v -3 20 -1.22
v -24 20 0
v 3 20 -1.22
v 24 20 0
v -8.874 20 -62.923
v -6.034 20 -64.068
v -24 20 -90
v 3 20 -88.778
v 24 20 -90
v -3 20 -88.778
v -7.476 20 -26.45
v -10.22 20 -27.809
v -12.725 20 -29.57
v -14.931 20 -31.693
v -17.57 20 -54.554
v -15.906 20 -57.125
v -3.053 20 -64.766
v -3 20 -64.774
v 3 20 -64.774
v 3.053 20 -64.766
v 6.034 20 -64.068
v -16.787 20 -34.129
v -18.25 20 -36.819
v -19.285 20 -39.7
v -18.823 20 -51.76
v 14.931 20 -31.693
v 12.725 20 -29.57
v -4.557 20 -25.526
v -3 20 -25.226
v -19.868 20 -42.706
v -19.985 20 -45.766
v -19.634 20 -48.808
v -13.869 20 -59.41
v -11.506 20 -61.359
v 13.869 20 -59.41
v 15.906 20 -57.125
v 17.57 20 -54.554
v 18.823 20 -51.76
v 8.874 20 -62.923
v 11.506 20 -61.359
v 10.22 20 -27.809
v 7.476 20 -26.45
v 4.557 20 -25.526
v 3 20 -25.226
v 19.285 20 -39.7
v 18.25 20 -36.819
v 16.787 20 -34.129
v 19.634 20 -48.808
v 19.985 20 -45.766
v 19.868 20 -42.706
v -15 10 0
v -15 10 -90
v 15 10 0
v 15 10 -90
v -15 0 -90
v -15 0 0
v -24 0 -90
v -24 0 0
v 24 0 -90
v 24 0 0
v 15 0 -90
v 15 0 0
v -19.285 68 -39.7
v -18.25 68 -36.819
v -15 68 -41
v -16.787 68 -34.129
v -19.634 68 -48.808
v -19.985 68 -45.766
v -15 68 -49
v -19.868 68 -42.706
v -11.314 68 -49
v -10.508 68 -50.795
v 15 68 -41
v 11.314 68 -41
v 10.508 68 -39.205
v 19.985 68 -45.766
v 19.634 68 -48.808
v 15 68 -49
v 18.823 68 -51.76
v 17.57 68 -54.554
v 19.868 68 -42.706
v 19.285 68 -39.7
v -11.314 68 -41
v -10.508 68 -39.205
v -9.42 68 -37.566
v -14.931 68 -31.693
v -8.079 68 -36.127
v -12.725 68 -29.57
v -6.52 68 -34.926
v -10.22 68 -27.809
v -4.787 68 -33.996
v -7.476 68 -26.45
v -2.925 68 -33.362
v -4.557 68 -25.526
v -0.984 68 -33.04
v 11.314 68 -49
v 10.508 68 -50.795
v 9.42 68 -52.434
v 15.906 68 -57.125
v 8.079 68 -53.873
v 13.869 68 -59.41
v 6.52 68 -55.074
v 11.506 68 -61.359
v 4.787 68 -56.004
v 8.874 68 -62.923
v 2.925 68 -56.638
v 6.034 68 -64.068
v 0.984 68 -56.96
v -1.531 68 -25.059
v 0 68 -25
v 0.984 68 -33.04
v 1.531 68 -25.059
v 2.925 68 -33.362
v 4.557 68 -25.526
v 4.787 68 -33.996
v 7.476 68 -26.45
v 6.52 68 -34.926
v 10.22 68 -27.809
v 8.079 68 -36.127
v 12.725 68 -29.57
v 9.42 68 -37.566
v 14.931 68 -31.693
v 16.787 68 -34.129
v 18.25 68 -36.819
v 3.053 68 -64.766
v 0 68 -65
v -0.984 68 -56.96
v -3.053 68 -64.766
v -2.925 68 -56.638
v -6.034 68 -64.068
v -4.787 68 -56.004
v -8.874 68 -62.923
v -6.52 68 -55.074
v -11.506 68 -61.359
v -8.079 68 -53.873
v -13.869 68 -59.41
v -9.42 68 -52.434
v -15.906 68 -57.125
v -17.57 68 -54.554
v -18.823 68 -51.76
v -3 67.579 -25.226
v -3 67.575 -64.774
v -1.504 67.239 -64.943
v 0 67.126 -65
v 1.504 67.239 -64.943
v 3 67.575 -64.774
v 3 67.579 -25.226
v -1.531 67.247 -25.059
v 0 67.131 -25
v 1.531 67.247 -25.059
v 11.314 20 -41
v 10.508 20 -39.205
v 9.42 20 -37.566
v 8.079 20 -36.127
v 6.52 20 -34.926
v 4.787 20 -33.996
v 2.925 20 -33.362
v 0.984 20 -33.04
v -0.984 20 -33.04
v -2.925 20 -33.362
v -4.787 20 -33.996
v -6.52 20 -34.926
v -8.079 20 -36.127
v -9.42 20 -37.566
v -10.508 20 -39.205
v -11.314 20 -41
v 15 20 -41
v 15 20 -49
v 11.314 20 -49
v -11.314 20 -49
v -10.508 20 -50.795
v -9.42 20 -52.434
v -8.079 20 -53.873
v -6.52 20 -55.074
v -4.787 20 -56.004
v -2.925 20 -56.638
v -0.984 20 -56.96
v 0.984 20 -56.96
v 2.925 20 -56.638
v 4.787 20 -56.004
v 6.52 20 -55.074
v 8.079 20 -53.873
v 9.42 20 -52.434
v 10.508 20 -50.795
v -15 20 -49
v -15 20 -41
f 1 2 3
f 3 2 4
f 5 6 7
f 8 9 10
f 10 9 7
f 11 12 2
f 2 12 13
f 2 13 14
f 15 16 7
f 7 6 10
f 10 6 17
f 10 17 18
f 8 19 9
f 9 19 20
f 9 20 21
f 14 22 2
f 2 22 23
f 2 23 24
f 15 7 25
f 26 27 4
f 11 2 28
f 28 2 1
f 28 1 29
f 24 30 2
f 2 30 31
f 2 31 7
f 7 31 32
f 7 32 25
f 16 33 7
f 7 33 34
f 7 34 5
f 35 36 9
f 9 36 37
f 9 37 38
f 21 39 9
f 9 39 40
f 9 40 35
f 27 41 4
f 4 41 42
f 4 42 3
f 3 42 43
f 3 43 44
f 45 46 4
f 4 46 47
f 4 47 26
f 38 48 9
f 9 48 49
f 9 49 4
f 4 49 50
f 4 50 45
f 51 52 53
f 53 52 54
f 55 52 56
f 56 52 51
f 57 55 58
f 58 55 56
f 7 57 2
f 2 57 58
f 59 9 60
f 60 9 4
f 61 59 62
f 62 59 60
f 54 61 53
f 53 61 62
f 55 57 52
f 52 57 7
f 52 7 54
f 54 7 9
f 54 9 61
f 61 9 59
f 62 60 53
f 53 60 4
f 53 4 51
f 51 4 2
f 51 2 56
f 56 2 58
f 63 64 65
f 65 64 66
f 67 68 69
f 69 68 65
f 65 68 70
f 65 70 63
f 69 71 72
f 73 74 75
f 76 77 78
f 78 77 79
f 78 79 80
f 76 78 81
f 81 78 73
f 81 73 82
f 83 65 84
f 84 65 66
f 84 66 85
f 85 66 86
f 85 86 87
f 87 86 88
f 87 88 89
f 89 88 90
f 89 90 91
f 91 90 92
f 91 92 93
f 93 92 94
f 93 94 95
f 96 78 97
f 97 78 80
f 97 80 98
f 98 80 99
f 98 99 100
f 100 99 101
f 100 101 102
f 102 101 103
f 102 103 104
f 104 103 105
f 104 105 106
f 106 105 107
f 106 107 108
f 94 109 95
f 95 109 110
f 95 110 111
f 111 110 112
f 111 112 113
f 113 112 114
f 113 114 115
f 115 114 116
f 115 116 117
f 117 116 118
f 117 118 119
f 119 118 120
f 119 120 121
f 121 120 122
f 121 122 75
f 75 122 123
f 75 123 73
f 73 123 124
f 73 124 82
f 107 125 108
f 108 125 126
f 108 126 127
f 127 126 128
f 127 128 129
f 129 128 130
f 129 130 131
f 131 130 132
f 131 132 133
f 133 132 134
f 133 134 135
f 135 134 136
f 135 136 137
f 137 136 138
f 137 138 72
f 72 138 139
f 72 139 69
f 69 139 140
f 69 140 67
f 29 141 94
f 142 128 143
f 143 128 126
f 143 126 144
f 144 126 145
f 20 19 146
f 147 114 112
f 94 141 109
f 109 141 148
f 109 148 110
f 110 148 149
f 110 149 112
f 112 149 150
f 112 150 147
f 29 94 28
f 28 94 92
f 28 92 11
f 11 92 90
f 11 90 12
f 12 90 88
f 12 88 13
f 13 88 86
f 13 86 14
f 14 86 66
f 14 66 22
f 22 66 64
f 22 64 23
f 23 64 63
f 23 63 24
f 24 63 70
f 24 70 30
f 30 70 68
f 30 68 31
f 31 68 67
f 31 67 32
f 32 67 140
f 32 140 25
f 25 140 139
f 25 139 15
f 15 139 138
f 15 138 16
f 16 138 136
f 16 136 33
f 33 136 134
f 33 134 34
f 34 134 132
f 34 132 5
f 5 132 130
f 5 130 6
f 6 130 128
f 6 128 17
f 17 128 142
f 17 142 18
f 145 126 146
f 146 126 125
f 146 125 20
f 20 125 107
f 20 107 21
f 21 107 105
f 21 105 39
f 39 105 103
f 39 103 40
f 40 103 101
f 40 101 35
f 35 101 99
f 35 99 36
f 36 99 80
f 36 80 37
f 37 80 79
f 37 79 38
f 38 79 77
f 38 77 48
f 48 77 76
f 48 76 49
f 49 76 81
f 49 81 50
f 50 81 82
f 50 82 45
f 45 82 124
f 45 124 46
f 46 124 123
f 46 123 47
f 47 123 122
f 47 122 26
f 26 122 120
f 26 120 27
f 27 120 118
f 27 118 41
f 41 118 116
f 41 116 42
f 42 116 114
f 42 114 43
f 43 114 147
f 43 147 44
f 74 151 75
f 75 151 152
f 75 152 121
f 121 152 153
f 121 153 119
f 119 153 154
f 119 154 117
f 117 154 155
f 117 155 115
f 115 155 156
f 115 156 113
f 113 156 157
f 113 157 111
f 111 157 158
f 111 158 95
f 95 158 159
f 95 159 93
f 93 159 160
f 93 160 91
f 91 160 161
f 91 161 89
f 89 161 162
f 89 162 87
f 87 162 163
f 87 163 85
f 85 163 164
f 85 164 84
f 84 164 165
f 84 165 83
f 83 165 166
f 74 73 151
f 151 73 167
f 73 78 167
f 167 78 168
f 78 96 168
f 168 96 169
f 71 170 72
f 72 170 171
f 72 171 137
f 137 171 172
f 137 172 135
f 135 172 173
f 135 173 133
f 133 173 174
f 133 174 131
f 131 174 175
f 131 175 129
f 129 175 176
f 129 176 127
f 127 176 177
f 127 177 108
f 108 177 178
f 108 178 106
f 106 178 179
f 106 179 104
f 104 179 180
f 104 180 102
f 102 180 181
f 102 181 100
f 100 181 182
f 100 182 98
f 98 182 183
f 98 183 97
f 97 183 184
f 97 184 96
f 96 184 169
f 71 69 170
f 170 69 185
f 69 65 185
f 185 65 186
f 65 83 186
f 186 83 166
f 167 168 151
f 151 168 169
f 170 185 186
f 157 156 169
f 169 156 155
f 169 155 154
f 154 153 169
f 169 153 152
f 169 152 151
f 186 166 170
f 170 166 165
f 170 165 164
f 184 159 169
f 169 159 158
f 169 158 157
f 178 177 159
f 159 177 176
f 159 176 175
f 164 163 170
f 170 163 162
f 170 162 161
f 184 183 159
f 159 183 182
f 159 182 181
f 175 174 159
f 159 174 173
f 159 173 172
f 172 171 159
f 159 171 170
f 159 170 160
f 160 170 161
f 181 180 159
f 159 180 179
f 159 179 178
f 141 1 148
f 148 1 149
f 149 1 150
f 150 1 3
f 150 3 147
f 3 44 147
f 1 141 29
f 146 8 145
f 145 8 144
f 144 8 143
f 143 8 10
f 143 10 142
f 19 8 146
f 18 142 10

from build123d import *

# Parameters (mm, degrees)
EXTRUDE_1_DEPTH = 90
SKETCH_2_R      = 20
EXTRUDE_2_DEPTH = 48
RIB_44_REACH    = 117.326
SKETCH_5_WALL_W = 285.43665717
SKETCH_5_WALL_H = 6
RIB_45_REACH    = 117.326
SKETCH_7_WALL_W = 285.43665717
SKETCH_7_WALL_H = 6


with BuildPart() as part:
    # Эскиз1 → Бобышка-Вытянуть1 (new body)
    with BuildSketch(Plane.XY):
        Polygon((-15, 0), (-15, 10), (15, 10), (15, 0), (24, 0), (24, 20), (-24, 20), (-24, 0), align=None)
    extrude(amount=-EXTRUDE_1_DEPTH)

    # Эскиз2 → Бобышка-Вытянуть2 (add)
    with BuildSketch(Plane(origin=(0, 20, 0), x_dir=(1, 0, 0), z_dir=(0, 1, 0))):
        with Locations(Location((0, 45, 0), (0, 0, 270))):
            Circle(SKETCH_2_R)
        with BuildLine():
            Line((-11.313708499, 49), (-15, 49))
            Line((-15, 49), (-15, 41))
            Line((-15, 41), (-11.313708499, 41))
            ThreePointArc((-11.313708499, 41), (0, 33), (11.313708499, 41))
            Line((11.313708499, 41), (15, 41))
            Line((15, 41), (15, 49))
            Line((15, 49), (11.313708499, 49))
            ThreePointArc((11.313708499, 49), (0, 57), (-11.313708499, 49))
        make_face(mode=Mode.SUBTRACT)
    extrude(amount=EXTRUDE_2_DEPTH)

    # Эскиз5 wall → Ребро44 (add, up to next)
    with BuildSketch(Plane(origin=(0, 43.563200657, -13.108782301), x_dir=(0, -0.892792260785, 0.45046862164), z_dir=(0, -0.45046862164, -0.892792260785)), mode=Mode.PRIVATE) as rib_44_sk1:
        Rectangle(SKETCH_5_WALL_W, SKETCH_5_WALL_H)
    rib_44_tool1 = extrude(rib_44_sk1.sketch, amount=RIB_44_REACH, mode=Mode.PRIVATE) - part.part
    add(rib_44_tool1.solids().sort_by_distance((0, 43.563200657, -13.108782301))[0])

    # Эскиз7 wall → Ребро45 (add, up to next)
    with BuildSketch(Plane(origin=(0, 43.563200657, -76.889084379), x_dir=(0, -0.892792260785, -0.45046862164), z_dir=(0, 0.45046862164, -0.892792260785)), mode=Mode.PRIVATE) as rib_45_sk1:
        Rectangle(SKETCH_7_WALL_W, SKETCH_7_WALL_H)
    rib_45_tool1 = extrude(rib_45_sk1.sketch, amount=-RIB_45_REACH, mode=Mode.PRIVATE) - part.part
    add(rib_45_tool1.solids().sort_by_distance((0, 43.563200657, -76.889084379))[0])


solid = part.part
